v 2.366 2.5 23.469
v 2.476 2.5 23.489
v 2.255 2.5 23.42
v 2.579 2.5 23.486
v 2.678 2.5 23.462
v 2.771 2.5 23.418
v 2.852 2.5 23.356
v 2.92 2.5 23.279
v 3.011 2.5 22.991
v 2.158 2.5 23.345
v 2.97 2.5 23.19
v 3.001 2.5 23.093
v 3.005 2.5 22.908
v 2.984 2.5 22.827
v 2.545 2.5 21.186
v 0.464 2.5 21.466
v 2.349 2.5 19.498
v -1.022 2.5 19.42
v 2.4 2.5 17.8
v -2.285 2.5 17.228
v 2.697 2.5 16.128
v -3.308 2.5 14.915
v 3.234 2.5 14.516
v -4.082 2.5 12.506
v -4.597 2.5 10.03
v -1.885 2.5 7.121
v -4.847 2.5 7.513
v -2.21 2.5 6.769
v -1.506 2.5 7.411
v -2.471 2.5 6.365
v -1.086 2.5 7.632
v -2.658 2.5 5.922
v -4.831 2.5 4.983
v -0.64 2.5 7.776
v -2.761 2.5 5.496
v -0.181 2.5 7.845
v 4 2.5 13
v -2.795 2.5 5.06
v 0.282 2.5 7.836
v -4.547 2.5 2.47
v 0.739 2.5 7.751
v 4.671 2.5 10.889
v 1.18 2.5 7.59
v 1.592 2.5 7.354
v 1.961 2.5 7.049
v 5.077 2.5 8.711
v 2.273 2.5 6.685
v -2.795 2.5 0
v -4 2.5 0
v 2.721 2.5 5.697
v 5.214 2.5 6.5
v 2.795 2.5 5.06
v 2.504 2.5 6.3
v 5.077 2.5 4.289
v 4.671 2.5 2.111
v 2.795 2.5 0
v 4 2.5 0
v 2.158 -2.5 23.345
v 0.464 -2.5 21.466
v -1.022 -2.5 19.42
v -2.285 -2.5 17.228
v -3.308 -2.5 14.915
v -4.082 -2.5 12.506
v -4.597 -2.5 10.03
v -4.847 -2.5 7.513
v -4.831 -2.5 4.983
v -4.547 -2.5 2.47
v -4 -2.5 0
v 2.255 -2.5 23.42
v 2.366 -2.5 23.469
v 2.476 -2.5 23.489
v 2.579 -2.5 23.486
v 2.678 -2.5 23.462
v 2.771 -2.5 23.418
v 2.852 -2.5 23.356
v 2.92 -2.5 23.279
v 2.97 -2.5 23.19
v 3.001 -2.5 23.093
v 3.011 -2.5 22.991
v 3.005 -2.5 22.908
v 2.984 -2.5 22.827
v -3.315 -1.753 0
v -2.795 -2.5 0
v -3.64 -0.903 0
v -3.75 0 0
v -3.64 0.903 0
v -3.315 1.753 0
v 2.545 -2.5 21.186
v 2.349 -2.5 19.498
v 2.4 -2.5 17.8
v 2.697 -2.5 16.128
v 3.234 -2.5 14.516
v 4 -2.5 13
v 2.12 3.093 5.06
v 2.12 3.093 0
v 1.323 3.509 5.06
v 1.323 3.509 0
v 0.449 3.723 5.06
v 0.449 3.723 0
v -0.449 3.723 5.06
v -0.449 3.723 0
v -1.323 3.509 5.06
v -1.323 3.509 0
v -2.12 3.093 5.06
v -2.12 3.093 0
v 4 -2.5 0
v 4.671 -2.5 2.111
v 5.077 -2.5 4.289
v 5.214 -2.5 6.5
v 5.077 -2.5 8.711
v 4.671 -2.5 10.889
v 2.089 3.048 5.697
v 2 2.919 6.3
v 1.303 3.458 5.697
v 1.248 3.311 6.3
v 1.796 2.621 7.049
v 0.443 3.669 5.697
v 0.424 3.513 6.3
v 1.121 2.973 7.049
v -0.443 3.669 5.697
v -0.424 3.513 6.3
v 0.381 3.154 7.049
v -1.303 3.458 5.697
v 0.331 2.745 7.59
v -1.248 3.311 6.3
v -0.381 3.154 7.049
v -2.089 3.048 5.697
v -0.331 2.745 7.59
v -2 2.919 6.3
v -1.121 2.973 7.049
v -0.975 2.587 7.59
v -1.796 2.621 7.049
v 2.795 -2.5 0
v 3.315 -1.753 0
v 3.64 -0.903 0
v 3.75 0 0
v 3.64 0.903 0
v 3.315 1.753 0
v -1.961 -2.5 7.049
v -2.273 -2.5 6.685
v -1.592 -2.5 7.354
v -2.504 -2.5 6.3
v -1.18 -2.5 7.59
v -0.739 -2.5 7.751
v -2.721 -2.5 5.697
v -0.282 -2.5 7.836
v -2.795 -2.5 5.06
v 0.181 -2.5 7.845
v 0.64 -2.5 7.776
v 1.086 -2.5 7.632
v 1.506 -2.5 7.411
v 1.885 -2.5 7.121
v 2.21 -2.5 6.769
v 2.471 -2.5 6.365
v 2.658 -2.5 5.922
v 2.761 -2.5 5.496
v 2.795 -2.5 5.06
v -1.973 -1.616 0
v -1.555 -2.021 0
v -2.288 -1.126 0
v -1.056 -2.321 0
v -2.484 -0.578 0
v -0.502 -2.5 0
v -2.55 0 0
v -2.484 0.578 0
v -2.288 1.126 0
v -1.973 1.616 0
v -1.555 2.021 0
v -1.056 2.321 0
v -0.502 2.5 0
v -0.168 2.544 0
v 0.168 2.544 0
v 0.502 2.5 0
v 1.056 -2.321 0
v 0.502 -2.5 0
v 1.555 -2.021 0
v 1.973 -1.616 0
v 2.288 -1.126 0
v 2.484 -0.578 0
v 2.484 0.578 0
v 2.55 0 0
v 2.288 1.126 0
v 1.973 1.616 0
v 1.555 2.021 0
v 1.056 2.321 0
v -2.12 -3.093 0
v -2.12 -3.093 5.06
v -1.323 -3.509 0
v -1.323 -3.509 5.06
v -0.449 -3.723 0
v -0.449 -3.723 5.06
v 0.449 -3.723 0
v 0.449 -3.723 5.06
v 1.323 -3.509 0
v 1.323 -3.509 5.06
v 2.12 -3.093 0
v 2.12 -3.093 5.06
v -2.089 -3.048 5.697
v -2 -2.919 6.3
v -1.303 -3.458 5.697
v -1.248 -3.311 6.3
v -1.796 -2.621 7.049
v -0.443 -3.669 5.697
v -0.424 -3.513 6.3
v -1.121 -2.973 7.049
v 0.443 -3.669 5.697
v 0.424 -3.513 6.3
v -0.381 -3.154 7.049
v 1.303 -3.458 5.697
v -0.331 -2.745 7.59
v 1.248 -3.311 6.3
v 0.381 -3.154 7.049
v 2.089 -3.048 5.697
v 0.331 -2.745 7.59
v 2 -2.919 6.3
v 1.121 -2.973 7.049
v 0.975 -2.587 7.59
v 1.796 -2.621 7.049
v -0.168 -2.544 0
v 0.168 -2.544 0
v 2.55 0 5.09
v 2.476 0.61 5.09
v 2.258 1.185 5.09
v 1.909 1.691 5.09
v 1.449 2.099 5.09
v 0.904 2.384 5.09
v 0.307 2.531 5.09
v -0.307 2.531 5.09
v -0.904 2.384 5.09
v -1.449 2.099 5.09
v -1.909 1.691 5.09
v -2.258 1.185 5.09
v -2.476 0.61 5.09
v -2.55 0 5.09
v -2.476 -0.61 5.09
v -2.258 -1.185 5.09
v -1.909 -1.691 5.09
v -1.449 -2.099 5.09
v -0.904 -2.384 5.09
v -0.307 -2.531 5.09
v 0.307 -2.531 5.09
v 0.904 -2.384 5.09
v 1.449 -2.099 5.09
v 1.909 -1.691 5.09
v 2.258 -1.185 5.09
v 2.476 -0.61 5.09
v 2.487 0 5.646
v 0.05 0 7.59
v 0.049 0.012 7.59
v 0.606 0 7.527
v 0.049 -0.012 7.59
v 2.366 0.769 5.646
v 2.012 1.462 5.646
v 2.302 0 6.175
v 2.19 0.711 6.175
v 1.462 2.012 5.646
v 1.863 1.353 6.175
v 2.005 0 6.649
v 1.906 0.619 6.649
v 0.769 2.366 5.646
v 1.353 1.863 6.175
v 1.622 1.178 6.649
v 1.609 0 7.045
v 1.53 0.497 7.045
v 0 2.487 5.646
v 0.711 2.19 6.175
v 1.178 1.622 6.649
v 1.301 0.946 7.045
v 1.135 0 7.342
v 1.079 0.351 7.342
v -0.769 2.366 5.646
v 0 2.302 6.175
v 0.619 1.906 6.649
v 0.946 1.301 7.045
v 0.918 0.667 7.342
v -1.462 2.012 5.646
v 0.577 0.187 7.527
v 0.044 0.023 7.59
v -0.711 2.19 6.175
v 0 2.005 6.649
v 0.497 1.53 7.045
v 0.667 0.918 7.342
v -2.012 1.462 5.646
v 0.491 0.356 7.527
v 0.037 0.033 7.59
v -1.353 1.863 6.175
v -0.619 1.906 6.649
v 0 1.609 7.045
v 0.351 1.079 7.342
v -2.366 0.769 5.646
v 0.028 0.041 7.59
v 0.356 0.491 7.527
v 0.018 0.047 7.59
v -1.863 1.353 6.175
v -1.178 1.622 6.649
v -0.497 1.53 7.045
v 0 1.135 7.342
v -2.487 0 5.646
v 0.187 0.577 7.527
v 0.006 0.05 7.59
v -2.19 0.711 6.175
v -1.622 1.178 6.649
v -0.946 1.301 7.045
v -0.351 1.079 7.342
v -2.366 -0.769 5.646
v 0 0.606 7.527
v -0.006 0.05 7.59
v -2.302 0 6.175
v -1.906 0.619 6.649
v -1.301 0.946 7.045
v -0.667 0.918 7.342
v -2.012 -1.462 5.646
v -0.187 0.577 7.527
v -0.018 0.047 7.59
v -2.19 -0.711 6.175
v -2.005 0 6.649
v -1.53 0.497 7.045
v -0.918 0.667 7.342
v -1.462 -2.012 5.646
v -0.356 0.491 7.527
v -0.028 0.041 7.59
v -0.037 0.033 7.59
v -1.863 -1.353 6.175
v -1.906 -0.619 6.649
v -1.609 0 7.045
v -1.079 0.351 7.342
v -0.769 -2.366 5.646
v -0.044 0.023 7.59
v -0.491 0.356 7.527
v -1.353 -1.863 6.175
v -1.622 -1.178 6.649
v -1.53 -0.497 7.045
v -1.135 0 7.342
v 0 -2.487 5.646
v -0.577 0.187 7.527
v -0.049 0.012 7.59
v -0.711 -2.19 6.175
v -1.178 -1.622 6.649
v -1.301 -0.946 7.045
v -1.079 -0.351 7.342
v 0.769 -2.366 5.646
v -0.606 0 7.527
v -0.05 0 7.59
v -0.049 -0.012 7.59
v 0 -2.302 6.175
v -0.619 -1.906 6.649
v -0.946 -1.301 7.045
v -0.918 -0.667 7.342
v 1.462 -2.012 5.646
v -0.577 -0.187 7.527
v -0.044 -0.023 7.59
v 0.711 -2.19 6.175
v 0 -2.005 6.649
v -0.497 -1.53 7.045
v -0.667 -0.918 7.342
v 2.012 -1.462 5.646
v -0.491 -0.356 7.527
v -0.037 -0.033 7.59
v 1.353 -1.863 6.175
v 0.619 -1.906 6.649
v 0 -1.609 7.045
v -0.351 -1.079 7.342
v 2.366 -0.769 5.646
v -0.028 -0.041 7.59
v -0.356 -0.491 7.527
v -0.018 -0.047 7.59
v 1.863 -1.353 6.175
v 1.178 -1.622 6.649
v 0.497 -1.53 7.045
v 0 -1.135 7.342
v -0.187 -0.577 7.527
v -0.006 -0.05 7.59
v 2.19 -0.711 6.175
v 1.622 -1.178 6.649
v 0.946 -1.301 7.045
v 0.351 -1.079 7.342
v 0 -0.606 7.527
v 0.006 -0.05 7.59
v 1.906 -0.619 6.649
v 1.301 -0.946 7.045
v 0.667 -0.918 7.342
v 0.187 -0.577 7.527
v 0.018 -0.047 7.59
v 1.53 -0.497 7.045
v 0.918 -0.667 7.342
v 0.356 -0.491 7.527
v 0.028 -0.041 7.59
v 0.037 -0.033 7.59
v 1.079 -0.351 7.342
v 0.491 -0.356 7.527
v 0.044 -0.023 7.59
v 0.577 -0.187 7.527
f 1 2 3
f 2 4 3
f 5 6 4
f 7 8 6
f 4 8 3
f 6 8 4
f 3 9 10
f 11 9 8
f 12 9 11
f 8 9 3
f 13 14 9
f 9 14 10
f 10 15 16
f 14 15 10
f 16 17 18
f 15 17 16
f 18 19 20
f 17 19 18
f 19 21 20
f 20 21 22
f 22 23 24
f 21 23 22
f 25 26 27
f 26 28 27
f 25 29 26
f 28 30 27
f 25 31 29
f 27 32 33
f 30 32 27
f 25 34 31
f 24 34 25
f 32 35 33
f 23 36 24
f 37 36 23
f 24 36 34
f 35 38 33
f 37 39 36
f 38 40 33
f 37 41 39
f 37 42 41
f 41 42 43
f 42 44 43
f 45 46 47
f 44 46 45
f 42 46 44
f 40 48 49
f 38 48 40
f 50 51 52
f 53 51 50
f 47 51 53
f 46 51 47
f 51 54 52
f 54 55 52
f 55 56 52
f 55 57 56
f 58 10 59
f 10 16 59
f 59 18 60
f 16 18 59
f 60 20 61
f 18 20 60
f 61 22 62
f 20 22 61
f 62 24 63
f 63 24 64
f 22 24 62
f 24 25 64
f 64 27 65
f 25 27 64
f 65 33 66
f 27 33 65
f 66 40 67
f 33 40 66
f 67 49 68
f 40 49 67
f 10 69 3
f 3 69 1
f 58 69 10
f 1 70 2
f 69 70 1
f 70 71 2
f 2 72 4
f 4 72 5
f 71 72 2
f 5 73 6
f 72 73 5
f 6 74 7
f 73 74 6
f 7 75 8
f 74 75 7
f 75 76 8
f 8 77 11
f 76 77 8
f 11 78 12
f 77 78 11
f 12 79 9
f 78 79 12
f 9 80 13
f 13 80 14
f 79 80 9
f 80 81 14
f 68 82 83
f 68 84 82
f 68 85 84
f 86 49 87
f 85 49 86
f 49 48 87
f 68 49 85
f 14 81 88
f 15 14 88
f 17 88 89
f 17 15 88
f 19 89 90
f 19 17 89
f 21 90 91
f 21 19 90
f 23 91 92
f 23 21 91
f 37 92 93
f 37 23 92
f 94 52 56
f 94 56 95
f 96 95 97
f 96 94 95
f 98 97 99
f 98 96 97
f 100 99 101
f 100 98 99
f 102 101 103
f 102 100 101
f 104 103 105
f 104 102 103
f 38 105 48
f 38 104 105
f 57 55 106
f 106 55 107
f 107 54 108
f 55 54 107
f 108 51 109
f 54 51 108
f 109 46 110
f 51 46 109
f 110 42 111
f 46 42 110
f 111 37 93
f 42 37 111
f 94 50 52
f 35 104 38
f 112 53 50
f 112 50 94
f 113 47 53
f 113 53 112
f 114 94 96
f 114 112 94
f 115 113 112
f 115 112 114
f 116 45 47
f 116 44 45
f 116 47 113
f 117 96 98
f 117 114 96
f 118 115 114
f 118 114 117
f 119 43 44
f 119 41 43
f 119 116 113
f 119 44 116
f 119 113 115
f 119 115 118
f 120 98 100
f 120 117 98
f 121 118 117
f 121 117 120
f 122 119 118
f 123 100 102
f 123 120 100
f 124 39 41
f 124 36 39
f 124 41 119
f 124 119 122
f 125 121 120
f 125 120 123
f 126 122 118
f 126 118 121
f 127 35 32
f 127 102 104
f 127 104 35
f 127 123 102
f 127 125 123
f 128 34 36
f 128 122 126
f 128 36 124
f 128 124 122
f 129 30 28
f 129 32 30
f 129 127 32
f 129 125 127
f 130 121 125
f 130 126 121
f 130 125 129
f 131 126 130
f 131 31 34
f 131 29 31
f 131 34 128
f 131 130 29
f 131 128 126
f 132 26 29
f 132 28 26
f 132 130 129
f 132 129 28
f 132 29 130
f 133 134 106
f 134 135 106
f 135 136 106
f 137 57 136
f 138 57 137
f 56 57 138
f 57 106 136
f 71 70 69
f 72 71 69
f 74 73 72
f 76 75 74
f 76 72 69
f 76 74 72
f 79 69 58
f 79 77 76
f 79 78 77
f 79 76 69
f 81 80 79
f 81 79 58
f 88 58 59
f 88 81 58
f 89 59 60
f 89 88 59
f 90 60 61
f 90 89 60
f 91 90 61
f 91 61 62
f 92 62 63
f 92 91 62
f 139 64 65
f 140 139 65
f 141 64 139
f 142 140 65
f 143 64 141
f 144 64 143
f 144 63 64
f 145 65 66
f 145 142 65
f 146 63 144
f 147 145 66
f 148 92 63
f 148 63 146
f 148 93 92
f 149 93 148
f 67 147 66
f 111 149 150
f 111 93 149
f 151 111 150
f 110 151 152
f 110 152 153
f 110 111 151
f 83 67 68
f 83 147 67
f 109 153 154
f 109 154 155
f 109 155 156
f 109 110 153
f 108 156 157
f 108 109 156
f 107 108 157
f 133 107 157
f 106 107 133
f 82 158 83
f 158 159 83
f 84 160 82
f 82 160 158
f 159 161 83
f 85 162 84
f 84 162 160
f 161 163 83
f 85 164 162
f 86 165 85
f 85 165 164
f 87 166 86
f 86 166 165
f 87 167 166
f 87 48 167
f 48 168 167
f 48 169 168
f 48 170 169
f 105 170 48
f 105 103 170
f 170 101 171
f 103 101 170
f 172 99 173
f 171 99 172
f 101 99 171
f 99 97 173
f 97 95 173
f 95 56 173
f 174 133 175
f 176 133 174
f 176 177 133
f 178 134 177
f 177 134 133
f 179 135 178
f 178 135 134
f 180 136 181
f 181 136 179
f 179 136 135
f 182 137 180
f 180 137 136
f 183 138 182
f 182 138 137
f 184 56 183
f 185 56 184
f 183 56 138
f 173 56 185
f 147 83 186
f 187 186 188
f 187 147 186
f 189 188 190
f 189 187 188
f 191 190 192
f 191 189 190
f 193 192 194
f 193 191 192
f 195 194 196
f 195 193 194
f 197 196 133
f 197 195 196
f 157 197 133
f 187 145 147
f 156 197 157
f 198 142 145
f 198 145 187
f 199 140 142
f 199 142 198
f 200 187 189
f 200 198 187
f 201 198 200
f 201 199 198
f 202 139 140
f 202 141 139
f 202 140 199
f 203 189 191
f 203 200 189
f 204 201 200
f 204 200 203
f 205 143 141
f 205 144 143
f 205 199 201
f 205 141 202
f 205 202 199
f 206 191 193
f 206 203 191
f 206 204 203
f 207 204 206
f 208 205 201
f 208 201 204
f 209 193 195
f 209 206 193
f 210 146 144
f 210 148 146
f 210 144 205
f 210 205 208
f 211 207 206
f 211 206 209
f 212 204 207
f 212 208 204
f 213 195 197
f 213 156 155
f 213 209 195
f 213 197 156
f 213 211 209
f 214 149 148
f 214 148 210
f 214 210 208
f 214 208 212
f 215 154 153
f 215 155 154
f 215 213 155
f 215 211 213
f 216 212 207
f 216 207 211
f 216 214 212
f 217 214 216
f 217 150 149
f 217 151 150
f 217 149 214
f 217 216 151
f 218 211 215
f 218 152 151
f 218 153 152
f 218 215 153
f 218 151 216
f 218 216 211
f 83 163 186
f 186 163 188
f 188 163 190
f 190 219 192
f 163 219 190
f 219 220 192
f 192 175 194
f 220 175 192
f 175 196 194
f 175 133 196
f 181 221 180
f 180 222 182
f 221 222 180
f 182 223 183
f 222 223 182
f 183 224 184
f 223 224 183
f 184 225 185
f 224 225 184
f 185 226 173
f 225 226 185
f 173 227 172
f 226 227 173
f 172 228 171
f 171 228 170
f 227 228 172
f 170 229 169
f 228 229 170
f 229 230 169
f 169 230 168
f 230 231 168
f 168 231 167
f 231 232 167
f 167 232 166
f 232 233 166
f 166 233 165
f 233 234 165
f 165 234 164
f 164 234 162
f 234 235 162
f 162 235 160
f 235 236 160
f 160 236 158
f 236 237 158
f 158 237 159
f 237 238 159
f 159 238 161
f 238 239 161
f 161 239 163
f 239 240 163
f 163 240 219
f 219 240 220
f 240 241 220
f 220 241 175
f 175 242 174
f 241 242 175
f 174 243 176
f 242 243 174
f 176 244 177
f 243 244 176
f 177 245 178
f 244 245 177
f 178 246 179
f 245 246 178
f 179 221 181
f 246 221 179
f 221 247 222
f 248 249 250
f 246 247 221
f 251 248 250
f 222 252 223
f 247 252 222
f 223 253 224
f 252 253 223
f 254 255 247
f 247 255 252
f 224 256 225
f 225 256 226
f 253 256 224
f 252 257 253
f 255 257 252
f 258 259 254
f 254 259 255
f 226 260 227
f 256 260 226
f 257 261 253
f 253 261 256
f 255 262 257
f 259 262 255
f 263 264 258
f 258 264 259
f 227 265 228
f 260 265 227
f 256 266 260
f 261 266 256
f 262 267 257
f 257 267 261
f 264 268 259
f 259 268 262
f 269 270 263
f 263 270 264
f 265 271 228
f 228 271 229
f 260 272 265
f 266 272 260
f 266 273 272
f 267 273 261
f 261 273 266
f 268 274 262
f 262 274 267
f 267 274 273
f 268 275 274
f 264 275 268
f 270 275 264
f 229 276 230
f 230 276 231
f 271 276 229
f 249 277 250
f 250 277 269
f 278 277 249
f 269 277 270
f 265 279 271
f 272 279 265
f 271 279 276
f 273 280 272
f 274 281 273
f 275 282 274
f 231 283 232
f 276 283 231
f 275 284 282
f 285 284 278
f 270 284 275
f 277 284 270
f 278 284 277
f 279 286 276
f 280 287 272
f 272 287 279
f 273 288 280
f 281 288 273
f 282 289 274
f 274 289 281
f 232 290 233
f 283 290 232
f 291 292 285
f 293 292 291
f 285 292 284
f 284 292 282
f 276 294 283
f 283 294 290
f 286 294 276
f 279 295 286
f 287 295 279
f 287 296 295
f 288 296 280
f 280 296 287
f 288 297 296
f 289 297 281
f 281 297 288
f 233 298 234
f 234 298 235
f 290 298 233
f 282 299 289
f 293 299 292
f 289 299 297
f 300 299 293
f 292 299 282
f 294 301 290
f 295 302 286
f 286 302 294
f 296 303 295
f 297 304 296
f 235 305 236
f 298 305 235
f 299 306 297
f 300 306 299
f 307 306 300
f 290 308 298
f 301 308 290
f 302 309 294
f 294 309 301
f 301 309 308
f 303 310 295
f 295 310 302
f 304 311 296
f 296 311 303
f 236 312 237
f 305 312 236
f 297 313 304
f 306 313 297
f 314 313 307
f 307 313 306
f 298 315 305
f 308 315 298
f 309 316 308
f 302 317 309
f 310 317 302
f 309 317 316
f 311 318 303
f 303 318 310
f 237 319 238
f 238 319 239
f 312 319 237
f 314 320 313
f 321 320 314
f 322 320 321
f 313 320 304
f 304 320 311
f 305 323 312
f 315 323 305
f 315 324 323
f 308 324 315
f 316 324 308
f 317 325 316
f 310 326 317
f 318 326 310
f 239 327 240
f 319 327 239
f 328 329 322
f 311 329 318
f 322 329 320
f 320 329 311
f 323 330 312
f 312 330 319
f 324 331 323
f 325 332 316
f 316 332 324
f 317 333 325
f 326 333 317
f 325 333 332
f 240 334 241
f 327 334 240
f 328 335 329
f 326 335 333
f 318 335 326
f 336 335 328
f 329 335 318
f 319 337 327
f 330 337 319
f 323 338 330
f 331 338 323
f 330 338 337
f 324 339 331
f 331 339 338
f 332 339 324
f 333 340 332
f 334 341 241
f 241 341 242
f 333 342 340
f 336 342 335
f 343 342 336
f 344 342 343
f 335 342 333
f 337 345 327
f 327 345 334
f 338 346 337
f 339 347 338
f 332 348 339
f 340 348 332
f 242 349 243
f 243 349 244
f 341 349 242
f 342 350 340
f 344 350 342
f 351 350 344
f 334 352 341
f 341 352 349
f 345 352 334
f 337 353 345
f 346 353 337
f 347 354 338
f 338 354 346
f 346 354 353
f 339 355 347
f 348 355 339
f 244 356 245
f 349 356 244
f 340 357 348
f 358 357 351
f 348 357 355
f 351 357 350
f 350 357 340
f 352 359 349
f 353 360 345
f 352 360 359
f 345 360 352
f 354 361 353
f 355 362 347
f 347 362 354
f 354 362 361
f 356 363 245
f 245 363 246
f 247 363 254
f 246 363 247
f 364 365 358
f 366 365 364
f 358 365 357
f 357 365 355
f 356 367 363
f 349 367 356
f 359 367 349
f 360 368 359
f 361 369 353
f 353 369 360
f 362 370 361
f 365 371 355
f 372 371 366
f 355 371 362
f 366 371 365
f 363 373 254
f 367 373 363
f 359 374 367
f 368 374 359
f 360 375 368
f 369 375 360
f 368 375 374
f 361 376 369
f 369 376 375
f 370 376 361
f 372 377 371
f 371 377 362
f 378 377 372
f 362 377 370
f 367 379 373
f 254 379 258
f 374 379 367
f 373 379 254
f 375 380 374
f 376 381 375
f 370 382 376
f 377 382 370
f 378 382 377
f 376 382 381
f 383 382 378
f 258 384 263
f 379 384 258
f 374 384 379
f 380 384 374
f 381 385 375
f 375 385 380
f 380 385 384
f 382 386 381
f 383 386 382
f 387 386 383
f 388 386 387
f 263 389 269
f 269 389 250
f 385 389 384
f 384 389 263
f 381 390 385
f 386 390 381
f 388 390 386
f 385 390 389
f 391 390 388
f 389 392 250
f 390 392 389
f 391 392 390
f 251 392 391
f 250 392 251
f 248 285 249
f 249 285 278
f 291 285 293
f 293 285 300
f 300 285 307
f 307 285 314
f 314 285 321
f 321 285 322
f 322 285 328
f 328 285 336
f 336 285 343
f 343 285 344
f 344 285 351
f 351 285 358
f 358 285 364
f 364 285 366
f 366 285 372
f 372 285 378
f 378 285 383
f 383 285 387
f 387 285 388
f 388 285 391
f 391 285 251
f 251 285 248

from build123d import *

# Parameters (mm, degrees)
CYLINDER_R        = 2.55
CYLINDER_DEPTH    = 7.6
FILLET_R          = 2.5
PAD_DEPTH         = 5
CYLINDER001_R     = 3.75
CYLINDER001_DEPTH = 8.8
FILLET001_R       = 3.74
FILLET002_R       = 0.5


with BuildPart() as led_clearance_to_be_removed:
    # Cylinder → Cylinder (new body)
    with BuildSketch(Plane.XY.offset(-0.01)):
        Circle(CYLINDER_R)
    extrude(amount=CYLINDER_DEPTH)

    # Fillet
    fillet_edges = [led_clearance_to_be_removed.edges().sort_by_distance(p)[0] for p in [
        (-2.55, 0, 7.59),
    ]]
    fillet(fillet_edges, radius=FILLET_R)


with BuildPart() as flame_shape:
    # Sketch → Pad (new body)
    with BuildSketch(Plane.XZ):
        with BuildLine():
            Line((-4, 0), (4, 0))
            ThreePointArc((4, 0), (5.213606, 6.5), (4, 13))
            ThreePointArc((4, 25), (2.338096, 19), (4, 13))
            ThreePointArc((4, 25), (-3.734918, 13.695174), (-4, 0))
        make_face()
    extrude(amount=PAD_DEPTH)


with BuildPart() as flame_shape_1:
    # Body placement: moved
    add(flame_shape.part.moved(Location((0, 2.5, 0))))


with BuildPart() as flame_diffuser:
    # Cylinder001 → Cylinder001 (new body)
    with BuildSketch(Plane.XY):
        Circle(CYLINDER001_R)
    extrude(amount=CYLINDER001_DEPTH)

    # Fillet001
    fillet001_edges = [flame_diffuser.edges().sort_by_distance(p)[0] for p in [
        (-3.75, 0, 8.8),
    ]]
    fillet(fillet001_edges, radius=FILLET001_R)

    # Fusion: union flame shape
    add(flame_shape_1.part)

    # Cut: cut led clearance to be removed
    add(led_clearance_to_be_removed.part, mode=Mode.SUBTRACT)

    # Fillet002
    fillet002_edges = [flame_diffuser.edges().sort_by_distance(p)[0] for p in [
        (4, 0, 25),
    ]]
    fillet(fillet002_edges, radius=FILLET002_R)


solid = flame_diffuser.part
